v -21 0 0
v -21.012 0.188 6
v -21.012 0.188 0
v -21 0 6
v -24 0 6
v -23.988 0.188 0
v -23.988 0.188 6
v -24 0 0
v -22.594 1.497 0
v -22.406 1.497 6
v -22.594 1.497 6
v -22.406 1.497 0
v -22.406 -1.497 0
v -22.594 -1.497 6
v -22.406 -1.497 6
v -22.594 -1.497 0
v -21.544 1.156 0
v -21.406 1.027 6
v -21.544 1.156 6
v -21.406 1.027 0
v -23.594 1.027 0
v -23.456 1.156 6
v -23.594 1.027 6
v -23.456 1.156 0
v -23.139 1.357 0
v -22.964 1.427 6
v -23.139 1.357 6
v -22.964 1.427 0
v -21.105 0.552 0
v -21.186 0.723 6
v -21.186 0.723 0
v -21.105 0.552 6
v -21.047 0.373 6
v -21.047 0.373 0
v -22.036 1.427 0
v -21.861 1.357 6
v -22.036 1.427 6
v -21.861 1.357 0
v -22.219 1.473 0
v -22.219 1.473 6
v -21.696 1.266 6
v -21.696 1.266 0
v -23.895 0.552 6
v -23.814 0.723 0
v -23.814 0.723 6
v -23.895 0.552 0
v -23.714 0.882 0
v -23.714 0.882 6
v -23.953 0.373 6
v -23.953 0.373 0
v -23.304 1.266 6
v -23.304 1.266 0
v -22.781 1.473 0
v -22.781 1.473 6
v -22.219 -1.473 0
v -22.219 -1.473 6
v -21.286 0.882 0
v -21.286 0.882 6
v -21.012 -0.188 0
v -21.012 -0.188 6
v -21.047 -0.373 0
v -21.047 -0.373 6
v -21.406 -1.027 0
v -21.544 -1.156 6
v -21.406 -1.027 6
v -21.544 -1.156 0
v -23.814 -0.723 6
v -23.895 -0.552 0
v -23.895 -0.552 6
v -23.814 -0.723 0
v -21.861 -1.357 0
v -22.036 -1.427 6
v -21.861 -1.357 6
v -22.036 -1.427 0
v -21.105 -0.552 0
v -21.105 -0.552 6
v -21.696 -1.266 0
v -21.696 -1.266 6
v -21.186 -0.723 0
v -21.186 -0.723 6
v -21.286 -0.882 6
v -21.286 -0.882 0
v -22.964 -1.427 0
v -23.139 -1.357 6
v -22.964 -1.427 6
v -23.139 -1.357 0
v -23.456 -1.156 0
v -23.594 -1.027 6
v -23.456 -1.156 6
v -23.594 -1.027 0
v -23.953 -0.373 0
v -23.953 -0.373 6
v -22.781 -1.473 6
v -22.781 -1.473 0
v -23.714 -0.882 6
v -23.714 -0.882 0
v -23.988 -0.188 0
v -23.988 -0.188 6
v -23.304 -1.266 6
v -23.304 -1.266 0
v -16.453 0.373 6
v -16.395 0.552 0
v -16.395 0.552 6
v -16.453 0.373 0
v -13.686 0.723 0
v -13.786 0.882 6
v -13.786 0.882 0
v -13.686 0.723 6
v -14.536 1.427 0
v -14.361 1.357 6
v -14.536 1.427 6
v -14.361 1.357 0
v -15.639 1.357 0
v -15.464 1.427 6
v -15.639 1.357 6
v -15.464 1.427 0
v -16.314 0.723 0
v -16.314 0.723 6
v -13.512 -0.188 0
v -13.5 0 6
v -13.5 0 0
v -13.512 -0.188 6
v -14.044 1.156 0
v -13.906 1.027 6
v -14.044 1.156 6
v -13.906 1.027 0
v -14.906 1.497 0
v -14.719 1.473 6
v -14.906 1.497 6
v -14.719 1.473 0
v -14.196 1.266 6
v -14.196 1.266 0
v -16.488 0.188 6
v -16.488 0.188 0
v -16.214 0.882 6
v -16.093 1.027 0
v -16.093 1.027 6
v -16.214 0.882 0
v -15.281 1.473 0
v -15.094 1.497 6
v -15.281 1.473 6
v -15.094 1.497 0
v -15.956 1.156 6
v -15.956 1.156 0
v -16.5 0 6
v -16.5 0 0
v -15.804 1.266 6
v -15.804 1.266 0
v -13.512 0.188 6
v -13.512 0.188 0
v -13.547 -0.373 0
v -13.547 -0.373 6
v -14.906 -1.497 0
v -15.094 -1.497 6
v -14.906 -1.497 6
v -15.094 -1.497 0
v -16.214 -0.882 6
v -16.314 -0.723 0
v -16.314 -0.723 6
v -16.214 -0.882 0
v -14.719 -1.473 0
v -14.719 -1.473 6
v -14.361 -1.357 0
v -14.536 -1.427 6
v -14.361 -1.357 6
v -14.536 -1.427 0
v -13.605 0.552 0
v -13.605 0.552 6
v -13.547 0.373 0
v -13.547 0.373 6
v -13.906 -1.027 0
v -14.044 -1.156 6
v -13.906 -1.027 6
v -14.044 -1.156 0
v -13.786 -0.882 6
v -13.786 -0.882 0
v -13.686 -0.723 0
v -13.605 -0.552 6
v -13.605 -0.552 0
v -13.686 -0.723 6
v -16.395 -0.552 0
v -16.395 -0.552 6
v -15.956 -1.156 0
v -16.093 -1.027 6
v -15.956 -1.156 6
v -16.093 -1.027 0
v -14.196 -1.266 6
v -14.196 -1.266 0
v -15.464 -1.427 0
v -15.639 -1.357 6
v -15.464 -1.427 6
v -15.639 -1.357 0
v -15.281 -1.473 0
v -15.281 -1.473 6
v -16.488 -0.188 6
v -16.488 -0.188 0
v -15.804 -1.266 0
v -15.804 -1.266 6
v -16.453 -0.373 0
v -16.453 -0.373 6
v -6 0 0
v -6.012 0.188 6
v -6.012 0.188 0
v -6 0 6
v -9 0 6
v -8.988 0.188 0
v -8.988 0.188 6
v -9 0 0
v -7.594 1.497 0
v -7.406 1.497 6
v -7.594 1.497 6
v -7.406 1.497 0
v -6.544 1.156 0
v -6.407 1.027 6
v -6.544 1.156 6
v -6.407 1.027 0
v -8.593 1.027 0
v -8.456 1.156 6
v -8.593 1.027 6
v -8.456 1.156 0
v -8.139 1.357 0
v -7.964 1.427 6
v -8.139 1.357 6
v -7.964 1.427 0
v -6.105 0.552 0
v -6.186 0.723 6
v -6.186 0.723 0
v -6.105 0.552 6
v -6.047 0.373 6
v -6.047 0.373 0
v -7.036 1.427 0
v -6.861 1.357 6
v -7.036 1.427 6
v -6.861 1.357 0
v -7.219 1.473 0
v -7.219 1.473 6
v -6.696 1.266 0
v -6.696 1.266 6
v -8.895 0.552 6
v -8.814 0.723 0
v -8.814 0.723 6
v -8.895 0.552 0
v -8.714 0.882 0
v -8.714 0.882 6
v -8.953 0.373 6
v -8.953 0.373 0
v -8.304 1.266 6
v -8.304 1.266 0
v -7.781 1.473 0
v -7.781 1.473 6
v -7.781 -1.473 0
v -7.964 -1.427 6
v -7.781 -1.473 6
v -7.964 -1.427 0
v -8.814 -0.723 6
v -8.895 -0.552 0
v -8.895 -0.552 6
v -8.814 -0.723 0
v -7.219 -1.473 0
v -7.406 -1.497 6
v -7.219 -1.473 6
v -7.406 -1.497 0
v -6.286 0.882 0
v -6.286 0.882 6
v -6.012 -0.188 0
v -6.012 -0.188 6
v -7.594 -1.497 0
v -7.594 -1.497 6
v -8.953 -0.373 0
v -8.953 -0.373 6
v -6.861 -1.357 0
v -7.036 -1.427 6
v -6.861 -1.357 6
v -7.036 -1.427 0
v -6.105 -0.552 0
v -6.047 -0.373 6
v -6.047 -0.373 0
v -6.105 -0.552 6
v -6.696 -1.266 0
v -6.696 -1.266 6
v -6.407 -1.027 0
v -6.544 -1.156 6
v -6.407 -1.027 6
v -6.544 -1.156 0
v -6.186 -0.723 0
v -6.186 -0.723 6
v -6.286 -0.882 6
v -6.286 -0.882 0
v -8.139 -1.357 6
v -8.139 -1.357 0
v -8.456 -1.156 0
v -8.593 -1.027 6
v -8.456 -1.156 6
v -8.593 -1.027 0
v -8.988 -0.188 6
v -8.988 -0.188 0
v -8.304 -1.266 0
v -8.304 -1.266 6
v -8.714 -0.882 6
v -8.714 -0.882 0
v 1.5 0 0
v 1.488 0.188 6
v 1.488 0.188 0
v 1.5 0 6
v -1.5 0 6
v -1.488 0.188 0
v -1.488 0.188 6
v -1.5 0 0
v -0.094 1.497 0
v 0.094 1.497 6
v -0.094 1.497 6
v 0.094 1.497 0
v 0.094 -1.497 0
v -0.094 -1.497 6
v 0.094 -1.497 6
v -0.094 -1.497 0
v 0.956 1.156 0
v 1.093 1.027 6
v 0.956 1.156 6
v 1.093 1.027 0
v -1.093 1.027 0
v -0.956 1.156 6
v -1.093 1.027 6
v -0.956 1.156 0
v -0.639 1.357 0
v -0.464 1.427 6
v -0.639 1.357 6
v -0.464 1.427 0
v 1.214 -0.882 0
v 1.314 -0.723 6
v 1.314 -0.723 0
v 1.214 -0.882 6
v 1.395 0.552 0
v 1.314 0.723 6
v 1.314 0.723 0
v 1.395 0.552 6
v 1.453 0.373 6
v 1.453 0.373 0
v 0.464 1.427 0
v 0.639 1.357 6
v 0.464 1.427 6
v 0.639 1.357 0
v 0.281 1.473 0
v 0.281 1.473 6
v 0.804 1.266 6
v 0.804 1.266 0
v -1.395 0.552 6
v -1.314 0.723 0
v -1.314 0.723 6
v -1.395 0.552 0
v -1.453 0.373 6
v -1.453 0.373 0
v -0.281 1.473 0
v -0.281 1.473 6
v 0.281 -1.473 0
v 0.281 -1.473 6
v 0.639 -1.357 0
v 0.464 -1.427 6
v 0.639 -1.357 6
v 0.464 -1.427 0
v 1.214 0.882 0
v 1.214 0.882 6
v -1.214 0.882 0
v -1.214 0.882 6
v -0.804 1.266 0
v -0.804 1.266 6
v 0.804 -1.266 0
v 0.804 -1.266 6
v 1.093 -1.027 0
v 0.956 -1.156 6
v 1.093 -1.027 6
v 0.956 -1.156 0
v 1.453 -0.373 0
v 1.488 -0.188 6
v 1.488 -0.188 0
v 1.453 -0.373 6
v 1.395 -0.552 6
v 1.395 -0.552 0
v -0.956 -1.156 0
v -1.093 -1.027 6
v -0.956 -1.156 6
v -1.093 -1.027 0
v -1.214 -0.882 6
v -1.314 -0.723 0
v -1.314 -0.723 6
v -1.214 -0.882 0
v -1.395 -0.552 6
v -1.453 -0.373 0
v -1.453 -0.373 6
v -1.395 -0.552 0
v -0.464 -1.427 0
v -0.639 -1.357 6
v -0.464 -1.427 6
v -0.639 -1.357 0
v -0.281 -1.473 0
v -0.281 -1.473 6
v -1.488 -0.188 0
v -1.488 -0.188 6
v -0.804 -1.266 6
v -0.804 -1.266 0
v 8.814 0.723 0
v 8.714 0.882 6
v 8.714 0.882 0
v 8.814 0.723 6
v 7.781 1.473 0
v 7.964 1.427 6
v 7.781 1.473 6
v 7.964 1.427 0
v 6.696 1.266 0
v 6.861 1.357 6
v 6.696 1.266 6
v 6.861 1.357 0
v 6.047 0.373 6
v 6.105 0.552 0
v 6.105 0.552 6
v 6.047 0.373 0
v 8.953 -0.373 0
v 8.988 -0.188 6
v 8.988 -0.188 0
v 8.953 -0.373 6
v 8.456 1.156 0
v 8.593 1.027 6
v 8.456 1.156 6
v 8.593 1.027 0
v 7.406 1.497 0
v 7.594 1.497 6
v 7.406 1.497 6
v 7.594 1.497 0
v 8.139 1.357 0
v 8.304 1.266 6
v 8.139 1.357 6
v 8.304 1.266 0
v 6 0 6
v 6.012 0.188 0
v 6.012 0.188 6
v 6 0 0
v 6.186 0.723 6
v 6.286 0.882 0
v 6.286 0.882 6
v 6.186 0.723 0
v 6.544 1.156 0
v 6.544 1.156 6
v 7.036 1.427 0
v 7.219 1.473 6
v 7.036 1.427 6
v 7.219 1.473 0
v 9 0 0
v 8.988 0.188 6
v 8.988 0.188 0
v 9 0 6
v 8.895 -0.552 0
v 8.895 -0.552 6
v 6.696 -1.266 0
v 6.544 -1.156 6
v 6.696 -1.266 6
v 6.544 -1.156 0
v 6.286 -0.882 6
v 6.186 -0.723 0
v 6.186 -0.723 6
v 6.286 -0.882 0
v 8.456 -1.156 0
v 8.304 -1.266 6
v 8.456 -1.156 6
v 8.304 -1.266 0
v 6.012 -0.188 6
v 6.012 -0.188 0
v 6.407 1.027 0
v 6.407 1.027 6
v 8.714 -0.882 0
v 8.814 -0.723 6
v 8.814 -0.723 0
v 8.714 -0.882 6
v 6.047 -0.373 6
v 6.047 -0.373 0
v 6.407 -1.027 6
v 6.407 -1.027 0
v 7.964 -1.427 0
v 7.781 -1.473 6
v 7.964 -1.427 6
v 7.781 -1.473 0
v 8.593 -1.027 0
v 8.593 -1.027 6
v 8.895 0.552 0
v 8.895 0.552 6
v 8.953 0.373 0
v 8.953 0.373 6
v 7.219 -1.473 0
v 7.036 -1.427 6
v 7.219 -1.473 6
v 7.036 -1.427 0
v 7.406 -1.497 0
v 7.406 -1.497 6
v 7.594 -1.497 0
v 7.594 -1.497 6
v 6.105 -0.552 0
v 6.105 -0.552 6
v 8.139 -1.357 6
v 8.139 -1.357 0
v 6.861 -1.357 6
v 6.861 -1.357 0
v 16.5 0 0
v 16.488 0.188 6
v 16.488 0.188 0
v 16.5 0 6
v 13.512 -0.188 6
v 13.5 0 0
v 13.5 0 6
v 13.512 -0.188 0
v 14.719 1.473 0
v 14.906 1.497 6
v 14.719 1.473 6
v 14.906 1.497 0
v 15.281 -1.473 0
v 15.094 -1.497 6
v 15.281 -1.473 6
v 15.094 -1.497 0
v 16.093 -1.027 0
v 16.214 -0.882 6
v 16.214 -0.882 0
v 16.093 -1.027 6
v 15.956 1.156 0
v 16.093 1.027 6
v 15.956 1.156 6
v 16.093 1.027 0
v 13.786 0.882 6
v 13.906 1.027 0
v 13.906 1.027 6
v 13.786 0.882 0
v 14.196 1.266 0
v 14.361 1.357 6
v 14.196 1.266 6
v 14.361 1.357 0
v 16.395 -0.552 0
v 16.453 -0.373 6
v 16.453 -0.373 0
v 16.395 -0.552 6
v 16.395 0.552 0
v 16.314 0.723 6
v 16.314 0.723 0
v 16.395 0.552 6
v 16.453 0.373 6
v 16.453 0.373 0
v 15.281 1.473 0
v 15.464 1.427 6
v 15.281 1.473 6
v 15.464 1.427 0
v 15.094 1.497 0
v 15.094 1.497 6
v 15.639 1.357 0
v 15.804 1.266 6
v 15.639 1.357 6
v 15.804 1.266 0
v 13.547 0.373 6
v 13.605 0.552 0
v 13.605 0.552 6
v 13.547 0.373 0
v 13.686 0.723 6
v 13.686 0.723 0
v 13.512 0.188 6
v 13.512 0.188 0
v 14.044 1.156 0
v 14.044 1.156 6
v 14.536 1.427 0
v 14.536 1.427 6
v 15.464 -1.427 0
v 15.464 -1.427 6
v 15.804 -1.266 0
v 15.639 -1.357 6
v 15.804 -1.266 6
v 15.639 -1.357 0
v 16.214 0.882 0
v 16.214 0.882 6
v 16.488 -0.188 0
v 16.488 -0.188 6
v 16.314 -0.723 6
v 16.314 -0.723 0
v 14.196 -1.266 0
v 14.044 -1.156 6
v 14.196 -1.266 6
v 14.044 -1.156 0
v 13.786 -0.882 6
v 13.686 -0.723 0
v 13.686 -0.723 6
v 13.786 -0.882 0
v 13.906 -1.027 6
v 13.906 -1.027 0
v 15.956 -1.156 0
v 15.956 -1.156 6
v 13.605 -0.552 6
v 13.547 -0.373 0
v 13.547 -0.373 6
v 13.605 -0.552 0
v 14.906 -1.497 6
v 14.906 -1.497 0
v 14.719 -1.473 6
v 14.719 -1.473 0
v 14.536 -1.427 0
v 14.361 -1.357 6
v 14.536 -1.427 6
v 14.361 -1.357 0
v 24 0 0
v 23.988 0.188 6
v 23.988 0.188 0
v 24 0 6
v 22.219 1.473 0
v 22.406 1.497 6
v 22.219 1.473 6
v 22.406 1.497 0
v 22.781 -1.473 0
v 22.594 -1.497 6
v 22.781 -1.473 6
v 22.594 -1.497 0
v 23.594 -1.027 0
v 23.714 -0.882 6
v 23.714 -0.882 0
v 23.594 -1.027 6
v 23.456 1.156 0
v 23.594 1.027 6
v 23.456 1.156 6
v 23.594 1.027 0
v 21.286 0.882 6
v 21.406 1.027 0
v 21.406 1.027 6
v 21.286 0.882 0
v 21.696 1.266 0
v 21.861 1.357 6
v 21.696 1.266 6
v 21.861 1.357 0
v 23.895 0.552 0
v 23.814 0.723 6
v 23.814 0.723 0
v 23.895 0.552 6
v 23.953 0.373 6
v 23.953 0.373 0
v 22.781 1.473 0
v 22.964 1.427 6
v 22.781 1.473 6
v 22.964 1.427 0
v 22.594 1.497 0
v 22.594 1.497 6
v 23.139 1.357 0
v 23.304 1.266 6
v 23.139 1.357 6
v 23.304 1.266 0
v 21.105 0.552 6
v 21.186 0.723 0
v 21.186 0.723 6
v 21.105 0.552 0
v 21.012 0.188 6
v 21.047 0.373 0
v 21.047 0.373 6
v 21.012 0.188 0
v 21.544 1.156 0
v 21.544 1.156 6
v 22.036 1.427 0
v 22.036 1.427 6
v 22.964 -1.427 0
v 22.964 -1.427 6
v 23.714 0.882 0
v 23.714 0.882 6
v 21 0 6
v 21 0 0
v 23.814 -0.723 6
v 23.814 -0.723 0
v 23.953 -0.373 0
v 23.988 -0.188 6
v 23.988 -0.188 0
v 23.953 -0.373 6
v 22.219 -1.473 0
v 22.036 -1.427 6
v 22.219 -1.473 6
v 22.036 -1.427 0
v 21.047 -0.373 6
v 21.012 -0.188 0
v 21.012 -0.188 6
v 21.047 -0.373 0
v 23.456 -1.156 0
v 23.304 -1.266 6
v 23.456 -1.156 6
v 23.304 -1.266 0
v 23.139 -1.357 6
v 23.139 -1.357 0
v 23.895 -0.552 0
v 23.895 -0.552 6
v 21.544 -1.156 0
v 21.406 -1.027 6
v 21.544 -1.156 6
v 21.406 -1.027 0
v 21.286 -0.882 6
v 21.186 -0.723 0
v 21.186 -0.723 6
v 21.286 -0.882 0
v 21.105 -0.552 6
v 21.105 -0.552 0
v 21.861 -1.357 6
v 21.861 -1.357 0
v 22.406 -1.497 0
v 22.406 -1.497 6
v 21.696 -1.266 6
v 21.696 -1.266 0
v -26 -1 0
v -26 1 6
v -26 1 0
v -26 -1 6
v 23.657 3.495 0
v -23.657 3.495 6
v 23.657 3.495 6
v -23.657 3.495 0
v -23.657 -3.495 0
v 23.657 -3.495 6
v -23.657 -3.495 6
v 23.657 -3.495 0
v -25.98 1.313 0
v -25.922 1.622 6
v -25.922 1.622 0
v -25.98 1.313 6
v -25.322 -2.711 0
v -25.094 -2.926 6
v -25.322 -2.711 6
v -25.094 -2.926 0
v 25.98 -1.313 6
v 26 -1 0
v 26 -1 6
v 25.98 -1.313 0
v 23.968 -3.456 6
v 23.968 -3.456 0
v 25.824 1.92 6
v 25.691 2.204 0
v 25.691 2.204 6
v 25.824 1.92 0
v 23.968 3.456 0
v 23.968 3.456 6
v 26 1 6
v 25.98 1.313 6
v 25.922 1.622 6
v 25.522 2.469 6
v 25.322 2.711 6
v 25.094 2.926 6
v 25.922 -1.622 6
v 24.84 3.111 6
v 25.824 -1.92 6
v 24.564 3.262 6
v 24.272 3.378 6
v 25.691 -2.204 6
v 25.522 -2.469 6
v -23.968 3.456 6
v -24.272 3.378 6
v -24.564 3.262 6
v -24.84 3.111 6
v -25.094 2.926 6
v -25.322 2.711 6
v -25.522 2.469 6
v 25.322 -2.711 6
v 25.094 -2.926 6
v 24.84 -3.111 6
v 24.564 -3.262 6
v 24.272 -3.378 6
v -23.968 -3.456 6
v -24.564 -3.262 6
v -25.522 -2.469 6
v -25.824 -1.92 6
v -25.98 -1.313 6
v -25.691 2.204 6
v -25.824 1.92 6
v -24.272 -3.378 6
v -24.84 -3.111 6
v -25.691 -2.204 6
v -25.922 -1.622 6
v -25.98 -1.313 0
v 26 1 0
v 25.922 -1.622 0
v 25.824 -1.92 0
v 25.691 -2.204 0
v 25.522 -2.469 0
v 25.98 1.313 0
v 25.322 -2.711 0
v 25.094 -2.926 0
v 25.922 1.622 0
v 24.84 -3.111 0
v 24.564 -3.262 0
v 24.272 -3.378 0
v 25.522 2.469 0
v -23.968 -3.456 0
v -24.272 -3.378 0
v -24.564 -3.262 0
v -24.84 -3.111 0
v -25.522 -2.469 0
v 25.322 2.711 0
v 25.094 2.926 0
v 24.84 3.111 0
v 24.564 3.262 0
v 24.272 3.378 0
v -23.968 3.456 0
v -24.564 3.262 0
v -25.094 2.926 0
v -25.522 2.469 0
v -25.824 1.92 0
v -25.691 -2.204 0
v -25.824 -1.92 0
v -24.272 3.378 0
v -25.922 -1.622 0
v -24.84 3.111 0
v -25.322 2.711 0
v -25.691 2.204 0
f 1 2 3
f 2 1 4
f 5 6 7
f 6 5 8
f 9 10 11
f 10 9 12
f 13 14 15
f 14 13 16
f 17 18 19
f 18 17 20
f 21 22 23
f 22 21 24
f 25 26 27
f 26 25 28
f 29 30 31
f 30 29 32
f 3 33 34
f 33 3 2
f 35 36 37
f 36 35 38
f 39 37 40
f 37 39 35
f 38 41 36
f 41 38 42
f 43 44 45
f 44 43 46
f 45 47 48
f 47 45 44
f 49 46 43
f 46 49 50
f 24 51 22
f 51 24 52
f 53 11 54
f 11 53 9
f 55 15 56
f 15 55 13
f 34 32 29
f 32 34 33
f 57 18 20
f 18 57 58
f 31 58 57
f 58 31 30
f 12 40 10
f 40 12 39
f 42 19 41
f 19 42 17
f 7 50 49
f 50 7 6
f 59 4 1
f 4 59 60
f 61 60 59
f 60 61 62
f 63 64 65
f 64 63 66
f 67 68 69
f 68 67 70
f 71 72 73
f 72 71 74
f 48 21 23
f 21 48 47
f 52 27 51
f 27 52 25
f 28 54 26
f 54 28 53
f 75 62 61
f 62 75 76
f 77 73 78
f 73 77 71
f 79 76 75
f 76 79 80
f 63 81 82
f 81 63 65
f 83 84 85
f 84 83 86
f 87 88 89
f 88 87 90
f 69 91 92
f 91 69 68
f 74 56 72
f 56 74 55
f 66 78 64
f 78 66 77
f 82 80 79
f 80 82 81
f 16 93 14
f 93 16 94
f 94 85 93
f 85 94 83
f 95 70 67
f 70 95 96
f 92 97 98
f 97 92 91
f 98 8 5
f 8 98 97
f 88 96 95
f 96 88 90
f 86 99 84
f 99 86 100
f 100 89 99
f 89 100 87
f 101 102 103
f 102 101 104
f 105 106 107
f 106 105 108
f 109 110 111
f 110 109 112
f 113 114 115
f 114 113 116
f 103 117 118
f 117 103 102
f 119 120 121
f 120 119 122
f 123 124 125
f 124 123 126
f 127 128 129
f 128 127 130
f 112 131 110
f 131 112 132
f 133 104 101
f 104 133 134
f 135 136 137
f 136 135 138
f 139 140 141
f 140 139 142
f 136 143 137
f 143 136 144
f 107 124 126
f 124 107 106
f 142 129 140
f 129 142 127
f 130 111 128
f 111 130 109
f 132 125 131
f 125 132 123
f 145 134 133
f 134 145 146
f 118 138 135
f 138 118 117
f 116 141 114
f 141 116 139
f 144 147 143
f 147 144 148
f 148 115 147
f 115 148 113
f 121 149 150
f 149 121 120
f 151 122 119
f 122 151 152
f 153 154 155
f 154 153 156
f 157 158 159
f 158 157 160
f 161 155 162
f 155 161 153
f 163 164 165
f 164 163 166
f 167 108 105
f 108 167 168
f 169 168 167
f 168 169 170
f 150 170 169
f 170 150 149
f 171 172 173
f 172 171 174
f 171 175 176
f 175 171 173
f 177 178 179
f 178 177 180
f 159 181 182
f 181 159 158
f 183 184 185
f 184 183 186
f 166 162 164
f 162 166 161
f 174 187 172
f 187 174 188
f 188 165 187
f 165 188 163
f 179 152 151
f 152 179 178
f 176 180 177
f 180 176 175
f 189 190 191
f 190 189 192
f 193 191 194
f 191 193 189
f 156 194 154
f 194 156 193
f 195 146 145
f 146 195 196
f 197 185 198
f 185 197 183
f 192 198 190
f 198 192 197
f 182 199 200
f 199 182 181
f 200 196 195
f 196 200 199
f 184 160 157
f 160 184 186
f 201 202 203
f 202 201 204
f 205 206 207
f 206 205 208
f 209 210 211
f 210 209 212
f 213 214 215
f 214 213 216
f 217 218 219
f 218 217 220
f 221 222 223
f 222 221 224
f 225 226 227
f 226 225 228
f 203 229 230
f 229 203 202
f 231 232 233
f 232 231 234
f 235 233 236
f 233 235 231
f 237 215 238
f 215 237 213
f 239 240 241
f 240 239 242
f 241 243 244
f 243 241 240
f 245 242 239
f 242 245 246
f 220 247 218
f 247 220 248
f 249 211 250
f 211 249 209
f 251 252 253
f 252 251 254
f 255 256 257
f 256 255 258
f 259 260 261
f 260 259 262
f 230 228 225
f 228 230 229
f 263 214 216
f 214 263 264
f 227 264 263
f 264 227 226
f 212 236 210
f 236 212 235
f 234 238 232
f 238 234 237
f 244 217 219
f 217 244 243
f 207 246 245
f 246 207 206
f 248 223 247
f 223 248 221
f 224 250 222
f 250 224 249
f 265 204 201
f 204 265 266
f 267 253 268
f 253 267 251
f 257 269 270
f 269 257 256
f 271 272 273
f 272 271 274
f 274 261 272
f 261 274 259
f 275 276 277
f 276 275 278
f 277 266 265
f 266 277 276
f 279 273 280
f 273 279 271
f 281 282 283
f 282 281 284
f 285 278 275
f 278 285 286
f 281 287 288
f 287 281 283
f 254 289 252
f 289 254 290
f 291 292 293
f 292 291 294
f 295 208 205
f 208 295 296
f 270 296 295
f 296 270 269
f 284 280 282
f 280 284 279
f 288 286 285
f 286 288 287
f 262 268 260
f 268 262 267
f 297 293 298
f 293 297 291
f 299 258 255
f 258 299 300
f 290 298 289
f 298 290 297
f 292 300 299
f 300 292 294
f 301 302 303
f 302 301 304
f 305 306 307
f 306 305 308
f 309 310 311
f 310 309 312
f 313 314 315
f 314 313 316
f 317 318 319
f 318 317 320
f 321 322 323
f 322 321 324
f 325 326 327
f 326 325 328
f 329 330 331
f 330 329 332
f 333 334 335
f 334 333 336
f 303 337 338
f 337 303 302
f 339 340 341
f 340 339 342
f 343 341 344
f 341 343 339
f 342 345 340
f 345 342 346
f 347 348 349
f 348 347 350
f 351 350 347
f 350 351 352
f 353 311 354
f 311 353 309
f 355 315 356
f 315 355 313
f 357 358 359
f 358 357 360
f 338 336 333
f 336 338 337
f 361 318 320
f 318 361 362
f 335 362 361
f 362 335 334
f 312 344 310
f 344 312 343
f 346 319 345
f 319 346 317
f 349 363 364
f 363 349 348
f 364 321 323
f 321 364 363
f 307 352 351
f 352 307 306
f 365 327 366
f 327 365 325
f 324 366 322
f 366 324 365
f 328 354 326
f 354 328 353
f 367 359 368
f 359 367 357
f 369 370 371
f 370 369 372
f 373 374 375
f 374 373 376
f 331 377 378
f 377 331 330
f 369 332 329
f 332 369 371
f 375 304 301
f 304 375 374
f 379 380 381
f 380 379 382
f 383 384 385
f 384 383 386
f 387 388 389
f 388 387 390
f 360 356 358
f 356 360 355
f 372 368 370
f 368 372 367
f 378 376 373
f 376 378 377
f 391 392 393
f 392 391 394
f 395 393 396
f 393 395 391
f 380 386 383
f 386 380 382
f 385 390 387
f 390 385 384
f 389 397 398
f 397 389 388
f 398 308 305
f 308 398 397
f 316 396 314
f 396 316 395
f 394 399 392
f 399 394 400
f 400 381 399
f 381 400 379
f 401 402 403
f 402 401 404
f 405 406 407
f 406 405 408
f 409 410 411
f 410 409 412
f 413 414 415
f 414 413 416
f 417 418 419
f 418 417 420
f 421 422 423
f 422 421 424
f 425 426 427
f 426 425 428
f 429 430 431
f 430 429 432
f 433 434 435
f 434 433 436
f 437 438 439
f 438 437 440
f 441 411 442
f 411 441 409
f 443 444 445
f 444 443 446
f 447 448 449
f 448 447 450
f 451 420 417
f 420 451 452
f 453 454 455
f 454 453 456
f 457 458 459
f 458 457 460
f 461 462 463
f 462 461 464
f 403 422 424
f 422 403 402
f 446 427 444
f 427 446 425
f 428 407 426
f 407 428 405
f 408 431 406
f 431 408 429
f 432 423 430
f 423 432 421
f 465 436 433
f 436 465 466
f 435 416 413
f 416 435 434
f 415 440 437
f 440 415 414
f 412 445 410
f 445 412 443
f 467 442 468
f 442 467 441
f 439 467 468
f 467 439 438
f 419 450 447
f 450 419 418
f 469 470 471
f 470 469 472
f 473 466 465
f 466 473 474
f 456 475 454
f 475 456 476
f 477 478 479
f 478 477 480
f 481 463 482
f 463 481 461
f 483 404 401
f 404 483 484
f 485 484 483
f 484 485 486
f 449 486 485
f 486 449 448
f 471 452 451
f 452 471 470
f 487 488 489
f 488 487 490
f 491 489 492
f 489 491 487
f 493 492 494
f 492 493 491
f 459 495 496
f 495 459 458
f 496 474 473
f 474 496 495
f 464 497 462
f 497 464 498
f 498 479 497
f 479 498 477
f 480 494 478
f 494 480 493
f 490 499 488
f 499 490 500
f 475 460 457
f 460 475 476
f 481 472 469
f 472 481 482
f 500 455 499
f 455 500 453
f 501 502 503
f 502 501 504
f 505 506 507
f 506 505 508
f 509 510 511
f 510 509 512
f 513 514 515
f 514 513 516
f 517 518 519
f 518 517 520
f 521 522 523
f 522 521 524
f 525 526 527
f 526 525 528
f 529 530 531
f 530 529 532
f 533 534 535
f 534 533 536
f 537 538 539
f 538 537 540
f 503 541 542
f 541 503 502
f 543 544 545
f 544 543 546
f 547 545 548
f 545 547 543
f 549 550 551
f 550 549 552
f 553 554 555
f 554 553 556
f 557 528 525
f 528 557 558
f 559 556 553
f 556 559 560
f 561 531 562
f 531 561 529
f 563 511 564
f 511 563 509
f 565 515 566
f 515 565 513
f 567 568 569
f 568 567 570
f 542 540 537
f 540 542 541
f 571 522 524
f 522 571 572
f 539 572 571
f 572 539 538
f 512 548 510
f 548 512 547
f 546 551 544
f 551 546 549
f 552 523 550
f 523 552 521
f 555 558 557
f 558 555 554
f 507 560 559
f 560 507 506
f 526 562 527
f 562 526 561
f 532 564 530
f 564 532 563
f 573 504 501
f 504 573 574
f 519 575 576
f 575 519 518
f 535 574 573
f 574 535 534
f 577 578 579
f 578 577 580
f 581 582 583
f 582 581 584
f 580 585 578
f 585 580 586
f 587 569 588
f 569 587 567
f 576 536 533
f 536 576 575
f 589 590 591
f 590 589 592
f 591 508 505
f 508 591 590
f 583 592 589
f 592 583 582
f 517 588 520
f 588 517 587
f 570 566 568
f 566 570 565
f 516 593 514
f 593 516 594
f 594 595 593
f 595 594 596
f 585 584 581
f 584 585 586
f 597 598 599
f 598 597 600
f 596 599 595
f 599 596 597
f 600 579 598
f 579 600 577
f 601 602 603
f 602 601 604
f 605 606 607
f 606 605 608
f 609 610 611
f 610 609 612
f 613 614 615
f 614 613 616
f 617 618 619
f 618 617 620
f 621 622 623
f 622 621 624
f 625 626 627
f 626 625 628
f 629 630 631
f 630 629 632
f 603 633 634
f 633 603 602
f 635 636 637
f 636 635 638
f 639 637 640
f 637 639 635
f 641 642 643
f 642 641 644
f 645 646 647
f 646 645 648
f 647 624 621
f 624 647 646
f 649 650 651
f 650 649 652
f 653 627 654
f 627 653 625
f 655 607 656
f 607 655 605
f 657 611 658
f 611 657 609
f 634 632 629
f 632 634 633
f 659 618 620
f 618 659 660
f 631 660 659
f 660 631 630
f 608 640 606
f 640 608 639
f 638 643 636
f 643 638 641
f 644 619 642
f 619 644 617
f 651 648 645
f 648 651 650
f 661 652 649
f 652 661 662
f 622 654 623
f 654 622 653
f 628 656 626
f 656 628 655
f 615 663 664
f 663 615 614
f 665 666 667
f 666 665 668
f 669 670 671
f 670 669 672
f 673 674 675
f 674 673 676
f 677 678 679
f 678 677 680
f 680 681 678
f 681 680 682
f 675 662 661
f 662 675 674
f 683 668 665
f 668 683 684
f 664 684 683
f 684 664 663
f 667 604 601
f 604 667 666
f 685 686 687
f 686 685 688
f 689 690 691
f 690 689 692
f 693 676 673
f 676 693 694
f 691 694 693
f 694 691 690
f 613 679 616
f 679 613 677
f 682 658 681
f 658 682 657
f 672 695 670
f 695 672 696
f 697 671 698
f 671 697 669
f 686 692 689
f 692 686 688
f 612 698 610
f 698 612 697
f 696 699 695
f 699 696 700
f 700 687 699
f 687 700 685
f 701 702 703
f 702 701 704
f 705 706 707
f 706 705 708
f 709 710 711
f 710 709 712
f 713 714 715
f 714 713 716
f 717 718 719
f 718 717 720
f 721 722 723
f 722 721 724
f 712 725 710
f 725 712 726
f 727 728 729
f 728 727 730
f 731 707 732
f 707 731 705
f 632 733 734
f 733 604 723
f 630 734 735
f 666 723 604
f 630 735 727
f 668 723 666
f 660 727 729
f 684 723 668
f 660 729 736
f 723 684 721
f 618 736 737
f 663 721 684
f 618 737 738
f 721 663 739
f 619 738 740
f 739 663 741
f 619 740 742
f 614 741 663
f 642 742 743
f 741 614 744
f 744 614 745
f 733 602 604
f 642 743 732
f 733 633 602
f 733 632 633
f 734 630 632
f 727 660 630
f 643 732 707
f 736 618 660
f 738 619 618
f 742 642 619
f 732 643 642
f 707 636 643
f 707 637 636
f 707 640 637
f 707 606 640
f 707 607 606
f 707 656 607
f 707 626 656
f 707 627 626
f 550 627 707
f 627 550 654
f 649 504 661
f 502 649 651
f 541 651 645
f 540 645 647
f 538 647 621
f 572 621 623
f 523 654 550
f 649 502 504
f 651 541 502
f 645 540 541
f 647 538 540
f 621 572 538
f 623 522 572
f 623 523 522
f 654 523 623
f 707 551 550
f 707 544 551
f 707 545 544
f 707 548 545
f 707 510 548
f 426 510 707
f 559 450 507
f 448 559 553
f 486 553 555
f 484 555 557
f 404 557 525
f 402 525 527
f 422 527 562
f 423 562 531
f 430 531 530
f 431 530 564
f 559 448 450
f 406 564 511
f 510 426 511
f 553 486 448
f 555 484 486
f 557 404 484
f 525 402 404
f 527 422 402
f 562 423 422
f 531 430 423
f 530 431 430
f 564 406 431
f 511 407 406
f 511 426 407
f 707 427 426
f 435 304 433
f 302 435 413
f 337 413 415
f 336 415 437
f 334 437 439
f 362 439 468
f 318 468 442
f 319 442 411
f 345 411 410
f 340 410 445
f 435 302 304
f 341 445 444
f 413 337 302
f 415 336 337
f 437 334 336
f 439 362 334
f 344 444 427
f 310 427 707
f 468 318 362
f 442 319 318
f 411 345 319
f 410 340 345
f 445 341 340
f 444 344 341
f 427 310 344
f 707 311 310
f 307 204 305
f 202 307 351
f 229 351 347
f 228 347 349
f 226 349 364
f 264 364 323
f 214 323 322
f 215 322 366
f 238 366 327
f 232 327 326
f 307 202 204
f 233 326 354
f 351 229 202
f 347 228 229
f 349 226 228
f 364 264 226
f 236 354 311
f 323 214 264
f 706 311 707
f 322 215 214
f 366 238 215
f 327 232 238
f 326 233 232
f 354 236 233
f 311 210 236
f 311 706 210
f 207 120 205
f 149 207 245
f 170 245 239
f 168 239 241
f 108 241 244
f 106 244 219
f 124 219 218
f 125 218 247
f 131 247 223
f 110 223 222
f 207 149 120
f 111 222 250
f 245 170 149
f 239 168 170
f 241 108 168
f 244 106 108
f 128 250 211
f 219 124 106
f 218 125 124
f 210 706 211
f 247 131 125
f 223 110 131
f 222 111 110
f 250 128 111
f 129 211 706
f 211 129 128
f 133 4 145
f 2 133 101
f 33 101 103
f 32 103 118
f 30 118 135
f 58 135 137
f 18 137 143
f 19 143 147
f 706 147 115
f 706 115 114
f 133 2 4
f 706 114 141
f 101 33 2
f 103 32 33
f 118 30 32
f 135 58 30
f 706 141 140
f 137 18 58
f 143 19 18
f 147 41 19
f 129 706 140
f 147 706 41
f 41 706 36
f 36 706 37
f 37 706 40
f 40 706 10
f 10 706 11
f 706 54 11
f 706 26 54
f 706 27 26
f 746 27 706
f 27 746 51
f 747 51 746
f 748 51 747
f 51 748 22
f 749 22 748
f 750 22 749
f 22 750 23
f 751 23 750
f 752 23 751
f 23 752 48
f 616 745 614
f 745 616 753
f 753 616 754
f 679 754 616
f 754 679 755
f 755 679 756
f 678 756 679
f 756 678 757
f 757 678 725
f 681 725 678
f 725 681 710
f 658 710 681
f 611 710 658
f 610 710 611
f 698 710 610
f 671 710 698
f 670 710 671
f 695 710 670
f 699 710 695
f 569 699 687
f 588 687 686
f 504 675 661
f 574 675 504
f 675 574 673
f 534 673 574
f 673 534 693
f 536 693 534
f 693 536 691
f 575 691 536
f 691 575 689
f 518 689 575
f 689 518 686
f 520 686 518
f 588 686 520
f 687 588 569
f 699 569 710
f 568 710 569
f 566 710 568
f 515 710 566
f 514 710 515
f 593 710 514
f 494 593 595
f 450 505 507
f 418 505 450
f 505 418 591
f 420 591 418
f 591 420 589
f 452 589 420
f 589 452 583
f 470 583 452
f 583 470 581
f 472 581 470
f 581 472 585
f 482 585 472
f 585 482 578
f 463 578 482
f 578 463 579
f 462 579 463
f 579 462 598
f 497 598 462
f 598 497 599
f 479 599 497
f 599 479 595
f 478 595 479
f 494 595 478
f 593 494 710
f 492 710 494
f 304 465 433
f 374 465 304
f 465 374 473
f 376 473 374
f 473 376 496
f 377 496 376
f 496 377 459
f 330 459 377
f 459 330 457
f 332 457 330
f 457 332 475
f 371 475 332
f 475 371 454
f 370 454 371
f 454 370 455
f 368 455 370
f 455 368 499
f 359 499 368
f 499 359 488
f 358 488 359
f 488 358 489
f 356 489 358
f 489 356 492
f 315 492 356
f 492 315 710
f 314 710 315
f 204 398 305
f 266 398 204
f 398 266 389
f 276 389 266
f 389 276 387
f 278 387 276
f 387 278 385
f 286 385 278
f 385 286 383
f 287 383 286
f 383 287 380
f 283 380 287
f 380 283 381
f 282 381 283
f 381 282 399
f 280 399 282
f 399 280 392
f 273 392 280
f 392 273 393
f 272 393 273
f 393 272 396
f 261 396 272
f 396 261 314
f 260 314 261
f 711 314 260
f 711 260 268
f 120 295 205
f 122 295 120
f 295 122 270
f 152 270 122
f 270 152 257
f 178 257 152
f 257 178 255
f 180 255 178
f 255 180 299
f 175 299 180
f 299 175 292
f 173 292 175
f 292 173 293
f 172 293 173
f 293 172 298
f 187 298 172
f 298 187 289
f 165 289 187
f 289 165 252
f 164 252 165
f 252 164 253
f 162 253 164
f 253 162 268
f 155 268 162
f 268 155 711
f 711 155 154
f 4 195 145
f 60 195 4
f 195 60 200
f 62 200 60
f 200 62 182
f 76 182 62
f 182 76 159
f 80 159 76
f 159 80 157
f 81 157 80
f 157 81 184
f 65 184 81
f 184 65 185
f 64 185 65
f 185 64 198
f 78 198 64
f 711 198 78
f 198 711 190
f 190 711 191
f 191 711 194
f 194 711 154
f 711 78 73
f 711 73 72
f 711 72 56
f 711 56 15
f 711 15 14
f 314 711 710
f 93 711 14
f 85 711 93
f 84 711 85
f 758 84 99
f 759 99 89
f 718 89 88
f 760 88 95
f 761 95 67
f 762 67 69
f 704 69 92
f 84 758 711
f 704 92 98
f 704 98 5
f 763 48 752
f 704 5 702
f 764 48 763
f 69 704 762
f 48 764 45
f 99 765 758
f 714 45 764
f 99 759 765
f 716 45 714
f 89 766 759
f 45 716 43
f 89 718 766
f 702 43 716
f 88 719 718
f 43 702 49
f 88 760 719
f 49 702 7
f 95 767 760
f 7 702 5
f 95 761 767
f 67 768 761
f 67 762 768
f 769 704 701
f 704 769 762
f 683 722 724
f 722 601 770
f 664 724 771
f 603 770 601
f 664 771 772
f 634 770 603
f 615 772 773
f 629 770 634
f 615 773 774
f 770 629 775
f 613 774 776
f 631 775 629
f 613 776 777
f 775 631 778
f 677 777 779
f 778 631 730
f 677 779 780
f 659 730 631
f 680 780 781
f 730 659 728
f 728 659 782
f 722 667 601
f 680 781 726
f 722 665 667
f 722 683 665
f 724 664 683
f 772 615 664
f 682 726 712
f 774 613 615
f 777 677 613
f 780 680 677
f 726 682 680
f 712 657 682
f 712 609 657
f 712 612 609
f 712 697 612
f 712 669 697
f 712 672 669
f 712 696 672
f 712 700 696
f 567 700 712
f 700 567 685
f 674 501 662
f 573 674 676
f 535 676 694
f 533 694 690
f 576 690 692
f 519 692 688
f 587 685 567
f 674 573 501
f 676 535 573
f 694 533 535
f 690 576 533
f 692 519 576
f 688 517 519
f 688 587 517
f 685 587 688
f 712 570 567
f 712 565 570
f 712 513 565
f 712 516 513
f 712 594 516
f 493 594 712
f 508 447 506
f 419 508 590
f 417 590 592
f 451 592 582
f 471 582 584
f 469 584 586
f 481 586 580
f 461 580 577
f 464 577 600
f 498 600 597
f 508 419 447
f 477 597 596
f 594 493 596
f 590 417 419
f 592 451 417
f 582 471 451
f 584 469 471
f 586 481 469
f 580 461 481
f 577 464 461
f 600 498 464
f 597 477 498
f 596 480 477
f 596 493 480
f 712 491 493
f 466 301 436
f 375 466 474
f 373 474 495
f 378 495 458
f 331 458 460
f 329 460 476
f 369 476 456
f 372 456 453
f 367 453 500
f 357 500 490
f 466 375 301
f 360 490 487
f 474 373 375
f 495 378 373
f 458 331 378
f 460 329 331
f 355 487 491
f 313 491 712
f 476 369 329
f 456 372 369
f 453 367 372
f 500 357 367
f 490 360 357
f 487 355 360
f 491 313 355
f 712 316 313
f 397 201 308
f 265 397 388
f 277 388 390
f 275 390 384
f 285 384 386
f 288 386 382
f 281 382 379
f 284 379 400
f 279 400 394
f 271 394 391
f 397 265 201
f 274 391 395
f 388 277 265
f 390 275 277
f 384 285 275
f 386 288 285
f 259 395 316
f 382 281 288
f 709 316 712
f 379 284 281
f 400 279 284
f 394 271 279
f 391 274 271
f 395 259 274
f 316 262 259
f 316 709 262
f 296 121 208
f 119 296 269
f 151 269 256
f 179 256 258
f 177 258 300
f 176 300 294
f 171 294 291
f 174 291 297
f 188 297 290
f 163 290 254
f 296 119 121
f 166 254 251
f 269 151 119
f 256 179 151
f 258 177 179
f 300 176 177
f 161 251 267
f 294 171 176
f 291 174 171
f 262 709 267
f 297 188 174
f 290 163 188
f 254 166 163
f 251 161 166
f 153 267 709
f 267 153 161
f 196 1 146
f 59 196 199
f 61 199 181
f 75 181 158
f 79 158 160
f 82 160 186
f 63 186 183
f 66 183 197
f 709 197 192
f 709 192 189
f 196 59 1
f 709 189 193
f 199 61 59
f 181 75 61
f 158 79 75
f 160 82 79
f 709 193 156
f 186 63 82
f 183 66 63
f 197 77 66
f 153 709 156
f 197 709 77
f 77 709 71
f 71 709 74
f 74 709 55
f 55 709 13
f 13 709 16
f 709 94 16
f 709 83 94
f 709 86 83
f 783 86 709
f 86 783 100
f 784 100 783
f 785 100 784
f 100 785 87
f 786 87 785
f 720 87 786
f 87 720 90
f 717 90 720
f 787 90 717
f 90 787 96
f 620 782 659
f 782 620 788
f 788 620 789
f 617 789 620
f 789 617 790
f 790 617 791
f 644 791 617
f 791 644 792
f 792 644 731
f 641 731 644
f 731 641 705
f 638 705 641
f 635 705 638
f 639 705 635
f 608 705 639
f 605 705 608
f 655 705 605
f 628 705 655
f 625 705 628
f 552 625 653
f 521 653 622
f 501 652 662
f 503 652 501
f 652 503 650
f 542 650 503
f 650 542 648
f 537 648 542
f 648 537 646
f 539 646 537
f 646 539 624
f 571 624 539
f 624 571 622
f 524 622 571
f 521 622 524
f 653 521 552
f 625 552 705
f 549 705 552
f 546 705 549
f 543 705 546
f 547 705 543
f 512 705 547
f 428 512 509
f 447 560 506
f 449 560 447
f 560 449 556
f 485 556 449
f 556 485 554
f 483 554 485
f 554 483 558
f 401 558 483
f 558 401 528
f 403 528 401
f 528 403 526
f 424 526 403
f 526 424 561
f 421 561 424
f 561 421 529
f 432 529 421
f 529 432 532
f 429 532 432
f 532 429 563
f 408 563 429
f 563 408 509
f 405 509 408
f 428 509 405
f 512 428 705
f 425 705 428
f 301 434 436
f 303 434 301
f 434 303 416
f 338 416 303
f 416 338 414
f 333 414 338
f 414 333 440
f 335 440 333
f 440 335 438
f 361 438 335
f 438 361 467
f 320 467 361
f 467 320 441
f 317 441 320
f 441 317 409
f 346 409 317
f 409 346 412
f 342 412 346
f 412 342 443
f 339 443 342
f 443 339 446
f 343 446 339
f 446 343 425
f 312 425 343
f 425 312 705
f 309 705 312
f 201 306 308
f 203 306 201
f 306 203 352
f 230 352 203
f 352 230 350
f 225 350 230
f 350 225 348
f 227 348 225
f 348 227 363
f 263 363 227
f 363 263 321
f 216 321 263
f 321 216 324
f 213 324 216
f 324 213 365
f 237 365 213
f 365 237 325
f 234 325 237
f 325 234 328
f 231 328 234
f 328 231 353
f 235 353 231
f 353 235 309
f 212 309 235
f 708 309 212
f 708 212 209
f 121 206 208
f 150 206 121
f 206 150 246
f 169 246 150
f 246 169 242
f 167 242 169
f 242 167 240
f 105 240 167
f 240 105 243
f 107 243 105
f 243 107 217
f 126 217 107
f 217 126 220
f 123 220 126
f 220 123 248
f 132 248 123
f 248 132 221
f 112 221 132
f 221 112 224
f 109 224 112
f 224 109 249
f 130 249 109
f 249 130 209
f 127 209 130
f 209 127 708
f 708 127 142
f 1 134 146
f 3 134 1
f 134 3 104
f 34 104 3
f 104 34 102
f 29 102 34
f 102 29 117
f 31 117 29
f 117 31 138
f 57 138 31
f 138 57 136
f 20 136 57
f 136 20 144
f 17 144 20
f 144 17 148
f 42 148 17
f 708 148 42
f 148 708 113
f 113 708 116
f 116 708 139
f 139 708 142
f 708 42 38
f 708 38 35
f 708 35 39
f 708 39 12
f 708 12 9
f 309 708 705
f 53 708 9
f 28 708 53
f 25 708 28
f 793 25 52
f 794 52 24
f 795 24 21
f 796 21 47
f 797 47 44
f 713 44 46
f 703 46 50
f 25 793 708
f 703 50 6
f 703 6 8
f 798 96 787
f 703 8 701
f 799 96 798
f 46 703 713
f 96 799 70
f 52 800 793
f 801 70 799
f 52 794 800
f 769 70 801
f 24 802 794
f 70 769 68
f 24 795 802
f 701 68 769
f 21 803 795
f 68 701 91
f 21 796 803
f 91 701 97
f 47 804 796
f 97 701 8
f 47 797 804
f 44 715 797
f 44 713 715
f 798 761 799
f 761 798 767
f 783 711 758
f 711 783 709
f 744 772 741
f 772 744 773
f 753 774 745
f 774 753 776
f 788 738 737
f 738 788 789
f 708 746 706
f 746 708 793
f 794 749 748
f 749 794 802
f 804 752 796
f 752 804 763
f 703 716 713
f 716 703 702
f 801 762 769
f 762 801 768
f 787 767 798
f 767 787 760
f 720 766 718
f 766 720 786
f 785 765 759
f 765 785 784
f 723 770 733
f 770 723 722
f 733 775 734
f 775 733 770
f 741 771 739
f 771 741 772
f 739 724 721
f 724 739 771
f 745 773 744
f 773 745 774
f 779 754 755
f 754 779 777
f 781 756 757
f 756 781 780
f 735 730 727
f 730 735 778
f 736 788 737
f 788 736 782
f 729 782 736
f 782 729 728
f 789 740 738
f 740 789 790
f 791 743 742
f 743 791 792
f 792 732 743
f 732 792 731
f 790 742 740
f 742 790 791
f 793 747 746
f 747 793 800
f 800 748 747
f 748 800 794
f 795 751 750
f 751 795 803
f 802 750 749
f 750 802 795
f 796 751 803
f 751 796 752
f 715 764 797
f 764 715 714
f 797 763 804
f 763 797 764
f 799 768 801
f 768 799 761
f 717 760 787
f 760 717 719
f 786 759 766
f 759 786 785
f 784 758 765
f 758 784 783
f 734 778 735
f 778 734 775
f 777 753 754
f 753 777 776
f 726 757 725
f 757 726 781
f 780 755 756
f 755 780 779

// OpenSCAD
$fn = 50;


difference() {
	union() {
		translate(v = [0, 0, 0]) {
			rotate(a = [0, 0, 0]) {
				hull() {
					translate(v = [-23.5000000000, 1.0000000000, 0]) {
						rotate(a = [0, 0, 0]) {
							translate(v = [0, 0, 0]) {
								rotate(a = [0, 0, 0]) {
									cylinder(h = 6, r = 2.5000000000);
								}
							}
						}
					}
					translate(v = [23.5000000000, 1.0000000000, 0]) {
						rotate(a = [0, 0, 0]) {
							translate(v = [0, 0, 0]) {
								rotate(a = [0, 0, 0]) {
									cylinder(h = 6, r = 2.5000000000);
								}
							}
						}
					}
					translate(v = [-23.5000000000, -1.0000000000, 0]) {
						rotate(a = [0, 0, 0]) {
							translate(v = [0, 0, 0]) {
								rotate(a = [0, 0, 0]) {
									cylinder(h = 6, r = 2.5000000000);
								}
							}
						}
					}
					translate(v = [23.5000000000, -1.0000000000, 0]) {
						rotate(a = [0, 0, 0]) {
							translate(v = [0, 0, 0]) {
								rotate(a = [0, 0, 0]) {
									cylinder(h = 6, r = 2.5000000000);
								}
							}
						}
					}
				}
			}
		}
	}
	union() {
		translate(v = [-22.5000000000, 0.0000000000, 0]) {
			rotate(a = [0, 0, 0]) {
				translate(v = [0, 0, -50]) {
					rotate(a = [0, 0, 0]) {
						cylinder(h = 100, r = 1.5000000000);
					}
				}
			}
		}
		translate(v = [-15.0000000000, 0.0000000000, 0]) {
			rotate(a = [0, 0, 0]) {
				translate(v = [0, 0, -50]) {
					rotate(a = [0, 0, 0]) {
						cylinder(h = 100, r = 1.5000000000);
					}
				}
			}
		}
		translate(v = [-7.5000000000, 0.0000000000, 0]) {
			rotate(a = [0, 0, 0]) {
				translate(v = [0, 0, -50]) {
					rotate(a = [0, 0, 0]) {
						cylinder(h = 100, r = 1.5000000000);
					}
				}
			}
		}
		translate(v = [0.0000000000, 0.0000000000, 0]) {
			rotate(a = [0, 0, 0]) {
				translate(v = [0, 0, -50]) {
					rotate(a = [0, 0, 0]) {
						cylinder(h = 100, r = 1.5000000000);
					}
				}
			}
		}
		translate(v = [7.5000000000, 0.0000000000, 0]) {
			rotate(a = [0, 0, 0]) {
				translate(v = [0, 0, -50]) {
					rotate(a = [0, 0, 0]) {
						cylinder(h = 100, r = 1.5000000000);
					}
				}
			}
		}
		translate(v = [15.0000000000, 0.0000000000, 0]) {
			rotate(a = [0, 0, 0]) {
				translate(v = [0, 0, -50]) {
					rotate(a = [0, 0, 0]) {
						cylinder(h = 100, r = 1.5000000000);
					}
				}
			}
		}
		translate(v = [22.5000000000, 0.0000000000, 0]) {
			rotate(a = [0, 0, 0]) {
				translate(v = [0, 0, -50]) {
					rotate(a = [0, 0, 0]) {
						cylinder(h = 100, r = 1.5000000000);
					}
				}
			}
		}
	}
}
